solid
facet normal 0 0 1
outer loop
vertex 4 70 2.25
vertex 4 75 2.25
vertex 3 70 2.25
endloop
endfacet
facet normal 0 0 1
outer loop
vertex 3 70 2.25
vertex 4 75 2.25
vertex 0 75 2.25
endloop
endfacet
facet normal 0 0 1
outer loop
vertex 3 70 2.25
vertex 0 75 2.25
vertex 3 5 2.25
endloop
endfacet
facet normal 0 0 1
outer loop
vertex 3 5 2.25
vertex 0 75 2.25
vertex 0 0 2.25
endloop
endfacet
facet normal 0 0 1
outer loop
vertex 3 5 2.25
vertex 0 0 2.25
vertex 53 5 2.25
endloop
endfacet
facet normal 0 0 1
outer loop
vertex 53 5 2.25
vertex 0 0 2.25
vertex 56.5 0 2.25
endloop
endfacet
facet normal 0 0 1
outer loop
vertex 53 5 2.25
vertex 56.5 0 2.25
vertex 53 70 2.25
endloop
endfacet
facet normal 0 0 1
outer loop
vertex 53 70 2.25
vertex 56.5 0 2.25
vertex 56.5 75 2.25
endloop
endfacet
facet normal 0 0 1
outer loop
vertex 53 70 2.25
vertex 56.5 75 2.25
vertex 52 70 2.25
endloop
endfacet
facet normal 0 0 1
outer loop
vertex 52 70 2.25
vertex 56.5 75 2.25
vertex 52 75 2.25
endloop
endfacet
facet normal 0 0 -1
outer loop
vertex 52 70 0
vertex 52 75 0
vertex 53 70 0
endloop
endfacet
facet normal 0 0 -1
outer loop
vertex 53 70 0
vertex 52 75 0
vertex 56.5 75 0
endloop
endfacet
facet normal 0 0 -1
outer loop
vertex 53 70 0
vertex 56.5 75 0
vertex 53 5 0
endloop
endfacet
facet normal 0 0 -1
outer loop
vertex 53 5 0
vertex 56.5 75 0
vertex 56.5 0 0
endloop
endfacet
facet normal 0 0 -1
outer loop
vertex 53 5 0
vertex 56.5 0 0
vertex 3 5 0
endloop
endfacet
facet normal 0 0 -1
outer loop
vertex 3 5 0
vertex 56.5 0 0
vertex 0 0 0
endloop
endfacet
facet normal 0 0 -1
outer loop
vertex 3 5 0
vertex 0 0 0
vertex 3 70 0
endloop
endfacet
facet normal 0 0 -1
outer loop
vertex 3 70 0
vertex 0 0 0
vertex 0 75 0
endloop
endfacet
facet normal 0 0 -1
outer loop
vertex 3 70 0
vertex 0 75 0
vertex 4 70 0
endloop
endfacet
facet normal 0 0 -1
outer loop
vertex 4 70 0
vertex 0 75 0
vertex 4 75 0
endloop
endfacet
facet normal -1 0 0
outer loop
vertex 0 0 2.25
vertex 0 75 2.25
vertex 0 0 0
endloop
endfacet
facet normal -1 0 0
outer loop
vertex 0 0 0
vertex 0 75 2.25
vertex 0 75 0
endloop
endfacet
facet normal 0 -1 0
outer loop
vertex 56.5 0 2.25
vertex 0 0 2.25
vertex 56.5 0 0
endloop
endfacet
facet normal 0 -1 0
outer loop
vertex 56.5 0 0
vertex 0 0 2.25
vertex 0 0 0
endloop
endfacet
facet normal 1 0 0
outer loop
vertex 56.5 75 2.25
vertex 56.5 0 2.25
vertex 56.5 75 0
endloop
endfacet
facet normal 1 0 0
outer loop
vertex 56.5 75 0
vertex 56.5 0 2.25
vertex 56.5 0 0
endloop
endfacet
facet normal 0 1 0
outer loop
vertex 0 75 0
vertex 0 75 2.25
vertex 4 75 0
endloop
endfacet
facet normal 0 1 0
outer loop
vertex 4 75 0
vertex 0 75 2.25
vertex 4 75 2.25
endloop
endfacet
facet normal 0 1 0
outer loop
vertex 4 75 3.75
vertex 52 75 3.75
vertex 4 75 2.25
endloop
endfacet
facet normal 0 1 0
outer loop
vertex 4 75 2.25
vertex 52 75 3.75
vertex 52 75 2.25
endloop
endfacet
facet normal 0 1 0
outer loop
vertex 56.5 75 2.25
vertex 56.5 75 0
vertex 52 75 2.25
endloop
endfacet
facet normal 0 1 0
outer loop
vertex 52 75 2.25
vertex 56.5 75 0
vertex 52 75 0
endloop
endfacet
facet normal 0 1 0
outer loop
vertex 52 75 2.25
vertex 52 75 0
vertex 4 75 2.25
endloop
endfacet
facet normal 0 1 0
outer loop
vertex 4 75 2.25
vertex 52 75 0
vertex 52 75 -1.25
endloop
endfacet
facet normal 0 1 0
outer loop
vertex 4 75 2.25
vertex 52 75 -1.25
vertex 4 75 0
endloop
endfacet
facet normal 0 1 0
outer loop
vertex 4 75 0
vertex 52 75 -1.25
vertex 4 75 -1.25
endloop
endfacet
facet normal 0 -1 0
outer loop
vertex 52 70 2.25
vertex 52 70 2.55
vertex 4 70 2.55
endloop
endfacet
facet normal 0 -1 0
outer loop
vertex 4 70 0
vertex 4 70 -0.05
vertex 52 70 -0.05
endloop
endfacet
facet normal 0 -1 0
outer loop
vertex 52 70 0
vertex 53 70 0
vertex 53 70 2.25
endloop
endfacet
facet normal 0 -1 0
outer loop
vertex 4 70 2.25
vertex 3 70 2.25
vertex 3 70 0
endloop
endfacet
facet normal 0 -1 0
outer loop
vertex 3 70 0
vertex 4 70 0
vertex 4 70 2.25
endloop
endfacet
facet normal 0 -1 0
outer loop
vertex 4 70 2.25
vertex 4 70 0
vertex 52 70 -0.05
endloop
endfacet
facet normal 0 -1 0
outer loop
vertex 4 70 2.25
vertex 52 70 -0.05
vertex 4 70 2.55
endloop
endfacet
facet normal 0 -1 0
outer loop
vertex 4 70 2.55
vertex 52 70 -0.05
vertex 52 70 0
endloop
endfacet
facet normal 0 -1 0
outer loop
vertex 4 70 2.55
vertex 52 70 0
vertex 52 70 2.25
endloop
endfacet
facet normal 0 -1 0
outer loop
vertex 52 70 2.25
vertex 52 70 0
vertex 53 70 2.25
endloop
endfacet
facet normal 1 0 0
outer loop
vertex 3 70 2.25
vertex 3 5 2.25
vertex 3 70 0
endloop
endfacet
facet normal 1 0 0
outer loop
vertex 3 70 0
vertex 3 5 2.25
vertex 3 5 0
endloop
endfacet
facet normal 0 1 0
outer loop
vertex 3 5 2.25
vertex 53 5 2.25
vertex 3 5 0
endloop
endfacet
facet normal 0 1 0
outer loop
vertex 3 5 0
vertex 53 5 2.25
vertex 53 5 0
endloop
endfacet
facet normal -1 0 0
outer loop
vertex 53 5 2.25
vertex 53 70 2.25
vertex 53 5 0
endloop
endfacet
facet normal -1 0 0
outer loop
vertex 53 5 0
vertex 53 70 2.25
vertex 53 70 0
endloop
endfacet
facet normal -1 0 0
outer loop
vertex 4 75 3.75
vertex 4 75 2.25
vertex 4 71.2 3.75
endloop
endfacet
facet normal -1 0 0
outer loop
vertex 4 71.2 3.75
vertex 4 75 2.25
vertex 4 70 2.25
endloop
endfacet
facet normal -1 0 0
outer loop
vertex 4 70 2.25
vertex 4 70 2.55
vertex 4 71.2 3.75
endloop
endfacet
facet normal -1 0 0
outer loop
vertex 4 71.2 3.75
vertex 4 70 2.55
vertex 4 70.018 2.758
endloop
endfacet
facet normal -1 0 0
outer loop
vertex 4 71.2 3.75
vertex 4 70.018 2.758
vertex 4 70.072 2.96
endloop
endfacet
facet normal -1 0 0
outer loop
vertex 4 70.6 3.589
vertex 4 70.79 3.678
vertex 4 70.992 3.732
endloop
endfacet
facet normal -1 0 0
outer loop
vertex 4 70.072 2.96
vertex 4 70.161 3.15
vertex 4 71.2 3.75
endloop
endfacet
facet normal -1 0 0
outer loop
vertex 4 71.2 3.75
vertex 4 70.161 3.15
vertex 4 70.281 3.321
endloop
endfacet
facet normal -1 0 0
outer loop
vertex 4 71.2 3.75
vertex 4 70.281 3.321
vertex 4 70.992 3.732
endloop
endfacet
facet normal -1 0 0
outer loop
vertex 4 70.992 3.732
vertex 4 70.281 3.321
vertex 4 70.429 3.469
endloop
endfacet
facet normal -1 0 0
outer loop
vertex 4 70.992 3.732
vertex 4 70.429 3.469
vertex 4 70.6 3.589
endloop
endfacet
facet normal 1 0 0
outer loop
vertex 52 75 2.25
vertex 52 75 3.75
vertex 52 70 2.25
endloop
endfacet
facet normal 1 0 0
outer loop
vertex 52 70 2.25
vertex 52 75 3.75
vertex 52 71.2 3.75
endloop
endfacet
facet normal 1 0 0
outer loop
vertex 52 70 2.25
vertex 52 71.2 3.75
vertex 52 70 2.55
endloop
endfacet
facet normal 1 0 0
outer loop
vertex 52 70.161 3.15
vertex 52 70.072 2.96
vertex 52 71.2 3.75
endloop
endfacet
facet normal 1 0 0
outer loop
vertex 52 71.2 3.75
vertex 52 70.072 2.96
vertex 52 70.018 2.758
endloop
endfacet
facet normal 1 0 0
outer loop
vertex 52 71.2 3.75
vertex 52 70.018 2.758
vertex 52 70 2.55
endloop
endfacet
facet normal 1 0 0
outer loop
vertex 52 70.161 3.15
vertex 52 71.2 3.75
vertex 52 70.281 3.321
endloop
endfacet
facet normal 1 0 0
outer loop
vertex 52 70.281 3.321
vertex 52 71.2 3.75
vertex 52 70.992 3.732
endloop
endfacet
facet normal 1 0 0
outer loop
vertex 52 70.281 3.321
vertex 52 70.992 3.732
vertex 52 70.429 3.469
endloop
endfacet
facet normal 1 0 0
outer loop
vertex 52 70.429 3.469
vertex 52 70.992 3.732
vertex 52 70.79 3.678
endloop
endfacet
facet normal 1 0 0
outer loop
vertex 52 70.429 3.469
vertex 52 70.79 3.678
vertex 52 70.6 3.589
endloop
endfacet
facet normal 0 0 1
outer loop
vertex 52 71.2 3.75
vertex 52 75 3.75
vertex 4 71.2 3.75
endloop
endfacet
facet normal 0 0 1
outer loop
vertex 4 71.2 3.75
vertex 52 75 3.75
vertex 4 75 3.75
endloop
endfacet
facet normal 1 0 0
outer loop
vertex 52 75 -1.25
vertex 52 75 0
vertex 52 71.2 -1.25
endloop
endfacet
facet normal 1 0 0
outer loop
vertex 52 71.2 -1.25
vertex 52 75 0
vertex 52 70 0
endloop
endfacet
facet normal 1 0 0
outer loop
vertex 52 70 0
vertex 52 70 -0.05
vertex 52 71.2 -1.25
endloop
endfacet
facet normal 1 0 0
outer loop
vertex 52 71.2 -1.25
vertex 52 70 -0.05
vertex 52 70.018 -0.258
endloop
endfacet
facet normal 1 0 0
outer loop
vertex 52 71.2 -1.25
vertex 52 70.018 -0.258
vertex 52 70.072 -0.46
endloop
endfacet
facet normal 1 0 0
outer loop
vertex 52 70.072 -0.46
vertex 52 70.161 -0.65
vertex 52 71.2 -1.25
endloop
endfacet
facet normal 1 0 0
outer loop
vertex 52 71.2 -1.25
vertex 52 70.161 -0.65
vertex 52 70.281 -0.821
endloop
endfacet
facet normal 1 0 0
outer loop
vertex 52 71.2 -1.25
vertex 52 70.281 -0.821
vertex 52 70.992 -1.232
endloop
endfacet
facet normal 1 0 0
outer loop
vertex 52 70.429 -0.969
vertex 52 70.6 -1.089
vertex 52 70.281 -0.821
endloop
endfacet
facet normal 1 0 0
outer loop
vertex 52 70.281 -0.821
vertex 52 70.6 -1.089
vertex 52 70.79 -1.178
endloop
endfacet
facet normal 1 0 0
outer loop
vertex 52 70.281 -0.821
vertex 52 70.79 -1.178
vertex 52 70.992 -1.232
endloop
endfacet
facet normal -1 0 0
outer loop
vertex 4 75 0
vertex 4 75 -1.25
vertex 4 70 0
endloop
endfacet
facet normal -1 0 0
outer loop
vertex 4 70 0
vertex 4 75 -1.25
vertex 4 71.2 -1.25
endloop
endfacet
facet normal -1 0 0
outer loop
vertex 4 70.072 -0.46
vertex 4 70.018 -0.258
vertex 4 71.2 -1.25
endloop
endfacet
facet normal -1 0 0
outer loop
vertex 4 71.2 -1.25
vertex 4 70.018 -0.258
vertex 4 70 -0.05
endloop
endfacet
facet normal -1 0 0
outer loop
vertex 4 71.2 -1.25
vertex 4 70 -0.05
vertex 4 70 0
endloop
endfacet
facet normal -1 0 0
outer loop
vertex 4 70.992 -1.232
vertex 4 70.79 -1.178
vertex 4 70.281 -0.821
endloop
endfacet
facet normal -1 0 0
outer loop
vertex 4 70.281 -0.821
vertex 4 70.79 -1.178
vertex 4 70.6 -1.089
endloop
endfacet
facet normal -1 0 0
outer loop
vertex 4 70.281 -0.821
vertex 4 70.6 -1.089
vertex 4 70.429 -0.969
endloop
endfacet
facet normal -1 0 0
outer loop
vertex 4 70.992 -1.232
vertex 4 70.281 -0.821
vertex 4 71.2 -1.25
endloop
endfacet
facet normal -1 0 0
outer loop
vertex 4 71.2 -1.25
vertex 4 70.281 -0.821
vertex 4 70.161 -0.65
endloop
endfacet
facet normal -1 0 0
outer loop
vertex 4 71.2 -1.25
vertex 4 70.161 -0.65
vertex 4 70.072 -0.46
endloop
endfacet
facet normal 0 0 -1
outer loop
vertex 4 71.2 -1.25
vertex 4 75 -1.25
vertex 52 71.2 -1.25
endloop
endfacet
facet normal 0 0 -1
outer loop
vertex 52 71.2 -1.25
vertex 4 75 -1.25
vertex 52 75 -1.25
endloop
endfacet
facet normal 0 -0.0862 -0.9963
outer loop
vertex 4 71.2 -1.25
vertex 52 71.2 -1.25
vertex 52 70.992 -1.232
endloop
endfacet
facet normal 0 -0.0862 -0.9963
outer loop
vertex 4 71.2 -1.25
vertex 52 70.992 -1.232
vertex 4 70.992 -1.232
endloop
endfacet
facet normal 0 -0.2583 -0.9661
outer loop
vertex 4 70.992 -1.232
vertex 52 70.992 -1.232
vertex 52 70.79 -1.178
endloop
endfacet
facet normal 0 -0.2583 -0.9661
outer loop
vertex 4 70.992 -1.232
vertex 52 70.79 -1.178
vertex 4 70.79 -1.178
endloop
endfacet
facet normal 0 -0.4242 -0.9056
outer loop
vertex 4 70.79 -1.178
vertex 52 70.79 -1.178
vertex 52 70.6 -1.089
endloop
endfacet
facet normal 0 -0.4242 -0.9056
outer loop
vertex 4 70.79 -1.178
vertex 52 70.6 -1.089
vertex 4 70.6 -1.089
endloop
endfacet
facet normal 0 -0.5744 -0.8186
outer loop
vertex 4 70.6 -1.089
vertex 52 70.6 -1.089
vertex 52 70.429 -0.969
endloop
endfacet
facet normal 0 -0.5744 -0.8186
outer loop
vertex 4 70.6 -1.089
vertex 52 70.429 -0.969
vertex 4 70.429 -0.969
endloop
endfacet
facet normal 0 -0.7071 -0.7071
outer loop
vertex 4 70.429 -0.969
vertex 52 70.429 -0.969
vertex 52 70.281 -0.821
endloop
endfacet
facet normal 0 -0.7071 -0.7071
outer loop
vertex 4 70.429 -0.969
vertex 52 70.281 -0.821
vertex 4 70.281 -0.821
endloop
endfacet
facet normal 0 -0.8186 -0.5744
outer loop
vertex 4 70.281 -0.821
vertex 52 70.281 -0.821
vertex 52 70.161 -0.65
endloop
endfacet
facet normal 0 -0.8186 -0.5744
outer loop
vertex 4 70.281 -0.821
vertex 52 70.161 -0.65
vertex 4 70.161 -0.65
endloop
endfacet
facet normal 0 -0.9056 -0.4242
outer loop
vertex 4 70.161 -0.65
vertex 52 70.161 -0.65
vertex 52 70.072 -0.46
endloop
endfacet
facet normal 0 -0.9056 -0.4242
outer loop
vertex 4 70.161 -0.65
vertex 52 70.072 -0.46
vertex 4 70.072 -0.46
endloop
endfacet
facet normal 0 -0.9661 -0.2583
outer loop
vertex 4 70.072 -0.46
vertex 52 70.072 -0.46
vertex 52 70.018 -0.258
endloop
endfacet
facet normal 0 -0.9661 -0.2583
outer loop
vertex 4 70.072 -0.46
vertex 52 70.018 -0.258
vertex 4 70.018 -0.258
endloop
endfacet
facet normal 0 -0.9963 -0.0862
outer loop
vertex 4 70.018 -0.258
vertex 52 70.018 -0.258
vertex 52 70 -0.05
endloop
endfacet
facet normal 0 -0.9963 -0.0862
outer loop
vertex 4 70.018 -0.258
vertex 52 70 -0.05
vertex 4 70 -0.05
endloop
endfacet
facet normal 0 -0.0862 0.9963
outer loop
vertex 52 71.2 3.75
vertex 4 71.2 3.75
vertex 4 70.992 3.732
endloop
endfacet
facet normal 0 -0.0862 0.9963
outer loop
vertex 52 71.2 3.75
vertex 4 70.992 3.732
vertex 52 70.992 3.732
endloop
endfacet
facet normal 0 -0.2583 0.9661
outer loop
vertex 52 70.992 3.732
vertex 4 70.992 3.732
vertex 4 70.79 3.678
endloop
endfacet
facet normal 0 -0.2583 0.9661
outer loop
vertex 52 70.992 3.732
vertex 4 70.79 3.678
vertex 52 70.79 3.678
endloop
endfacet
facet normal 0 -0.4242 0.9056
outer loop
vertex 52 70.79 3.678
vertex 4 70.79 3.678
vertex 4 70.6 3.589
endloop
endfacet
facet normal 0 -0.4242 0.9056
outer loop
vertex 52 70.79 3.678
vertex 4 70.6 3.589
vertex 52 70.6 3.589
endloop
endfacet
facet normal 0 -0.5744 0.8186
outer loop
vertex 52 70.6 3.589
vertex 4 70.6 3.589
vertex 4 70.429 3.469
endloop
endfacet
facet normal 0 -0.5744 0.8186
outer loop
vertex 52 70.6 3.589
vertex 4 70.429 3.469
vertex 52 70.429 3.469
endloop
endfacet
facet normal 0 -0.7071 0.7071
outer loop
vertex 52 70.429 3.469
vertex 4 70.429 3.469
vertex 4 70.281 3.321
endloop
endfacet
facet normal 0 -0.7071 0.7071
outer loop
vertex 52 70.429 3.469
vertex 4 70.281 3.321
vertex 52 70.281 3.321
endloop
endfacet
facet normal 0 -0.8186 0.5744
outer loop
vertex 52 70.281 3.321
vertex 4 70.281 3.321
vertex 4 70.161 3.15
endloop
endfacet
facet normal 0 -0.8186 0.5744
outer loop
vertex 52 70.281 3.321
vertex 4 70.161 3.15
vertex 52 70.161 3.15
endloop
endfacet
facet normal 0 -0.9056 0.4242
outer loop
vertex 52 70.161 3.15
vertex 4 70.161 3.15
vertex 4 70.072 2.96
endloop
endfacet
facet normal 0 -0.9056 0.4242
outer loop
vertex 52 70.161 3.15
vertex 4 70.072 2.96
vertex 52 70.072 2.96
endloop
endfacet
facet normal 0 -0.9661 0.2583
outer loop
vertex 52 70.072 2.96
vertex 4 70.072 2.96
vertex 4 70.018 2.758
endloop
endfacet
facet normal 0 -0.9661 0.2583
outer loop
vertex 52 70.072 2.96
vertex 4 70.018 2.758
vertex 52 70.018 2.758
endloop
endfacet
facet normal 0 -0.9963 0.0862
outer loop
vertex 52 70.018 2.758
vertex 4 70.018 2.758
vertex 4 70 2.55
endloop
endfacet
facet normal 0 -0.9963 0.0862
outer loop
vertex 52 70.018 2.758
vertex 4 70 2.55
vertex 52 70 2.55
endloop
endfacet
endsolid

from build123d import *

# Parameters (mm, degrees)
SKETCH2_W                = 56.5
SKETCH2_H                = 75
SKETCH2_W_2              = 50
SKETCH2_H_2              = 65
BOSS_EXTRUDE1_DEPTH      = 2.25
SKETCH3_W                = 48
SKETCH3_H                = 5
BOSS_EXTRUDE2_DEPTH      = 1.5
BOSS_EXTRUDE3_DEPTH      = 1.5
BOSS_EXTRUDE3_DEPTH_BACK = 3.5
SKETCH3_4_W              = 48
SKETCH3_4_H              = 5
FILLET3_R                = 1.2


with BuildPart() as part:
    # Sketch2 → Boss-Extrude1 (new body)
    with BuildSketch(Plane.XY):
        with Locations((28.25, 37.5)):
            Rectangle(SKETCH2_W, SKETCH2_H)
        with Locations((28, 37.5)):
            Rectangle(SKETCH2_W_2, SKETCH2_H_2, mode=Mode.SUBTRACT)
    extrude(amount=BOSS_EXTRUDE1_DEPTH)

    # Sketch3 → Boss-Extrude2 (add)
    with BuildSketch(Plane.XY.offset(2.25)):
        with Locations((28, 72.5)):
            Rectangle(SKETCH3_W, SKETCH3_H)
    extrude(amount=BOSS_EXTRUDE2_DEPTH)

    # Sketch3<4> → Boss-Extrude3 (add, two sides: drawn at the far end of the back side and taken through both)
    with BuildSketch(Plane.XY.offset(2.25).offset(-BOSS_EXTRUDE3_DEPTH_BACK)):
        with Locations((28, 72.5)):
            Rectangle(SKETCH3_4_W, SKETCH3_4_H)
    extrude(amount=BOSS_EXTRUDE3_DEPTH + BOSS_EXTRUDE3_DEPTH_BACK)

    # Fillet3
    fillet3_edges = [part.edges().sort_by_distance(p)[0] for p in [
        (28, 70, -1.25),
        (28, 70, 3.75),
    ]]
    fillet(fillet3_edges, radius=FILLET3_R)


solid = part.part
